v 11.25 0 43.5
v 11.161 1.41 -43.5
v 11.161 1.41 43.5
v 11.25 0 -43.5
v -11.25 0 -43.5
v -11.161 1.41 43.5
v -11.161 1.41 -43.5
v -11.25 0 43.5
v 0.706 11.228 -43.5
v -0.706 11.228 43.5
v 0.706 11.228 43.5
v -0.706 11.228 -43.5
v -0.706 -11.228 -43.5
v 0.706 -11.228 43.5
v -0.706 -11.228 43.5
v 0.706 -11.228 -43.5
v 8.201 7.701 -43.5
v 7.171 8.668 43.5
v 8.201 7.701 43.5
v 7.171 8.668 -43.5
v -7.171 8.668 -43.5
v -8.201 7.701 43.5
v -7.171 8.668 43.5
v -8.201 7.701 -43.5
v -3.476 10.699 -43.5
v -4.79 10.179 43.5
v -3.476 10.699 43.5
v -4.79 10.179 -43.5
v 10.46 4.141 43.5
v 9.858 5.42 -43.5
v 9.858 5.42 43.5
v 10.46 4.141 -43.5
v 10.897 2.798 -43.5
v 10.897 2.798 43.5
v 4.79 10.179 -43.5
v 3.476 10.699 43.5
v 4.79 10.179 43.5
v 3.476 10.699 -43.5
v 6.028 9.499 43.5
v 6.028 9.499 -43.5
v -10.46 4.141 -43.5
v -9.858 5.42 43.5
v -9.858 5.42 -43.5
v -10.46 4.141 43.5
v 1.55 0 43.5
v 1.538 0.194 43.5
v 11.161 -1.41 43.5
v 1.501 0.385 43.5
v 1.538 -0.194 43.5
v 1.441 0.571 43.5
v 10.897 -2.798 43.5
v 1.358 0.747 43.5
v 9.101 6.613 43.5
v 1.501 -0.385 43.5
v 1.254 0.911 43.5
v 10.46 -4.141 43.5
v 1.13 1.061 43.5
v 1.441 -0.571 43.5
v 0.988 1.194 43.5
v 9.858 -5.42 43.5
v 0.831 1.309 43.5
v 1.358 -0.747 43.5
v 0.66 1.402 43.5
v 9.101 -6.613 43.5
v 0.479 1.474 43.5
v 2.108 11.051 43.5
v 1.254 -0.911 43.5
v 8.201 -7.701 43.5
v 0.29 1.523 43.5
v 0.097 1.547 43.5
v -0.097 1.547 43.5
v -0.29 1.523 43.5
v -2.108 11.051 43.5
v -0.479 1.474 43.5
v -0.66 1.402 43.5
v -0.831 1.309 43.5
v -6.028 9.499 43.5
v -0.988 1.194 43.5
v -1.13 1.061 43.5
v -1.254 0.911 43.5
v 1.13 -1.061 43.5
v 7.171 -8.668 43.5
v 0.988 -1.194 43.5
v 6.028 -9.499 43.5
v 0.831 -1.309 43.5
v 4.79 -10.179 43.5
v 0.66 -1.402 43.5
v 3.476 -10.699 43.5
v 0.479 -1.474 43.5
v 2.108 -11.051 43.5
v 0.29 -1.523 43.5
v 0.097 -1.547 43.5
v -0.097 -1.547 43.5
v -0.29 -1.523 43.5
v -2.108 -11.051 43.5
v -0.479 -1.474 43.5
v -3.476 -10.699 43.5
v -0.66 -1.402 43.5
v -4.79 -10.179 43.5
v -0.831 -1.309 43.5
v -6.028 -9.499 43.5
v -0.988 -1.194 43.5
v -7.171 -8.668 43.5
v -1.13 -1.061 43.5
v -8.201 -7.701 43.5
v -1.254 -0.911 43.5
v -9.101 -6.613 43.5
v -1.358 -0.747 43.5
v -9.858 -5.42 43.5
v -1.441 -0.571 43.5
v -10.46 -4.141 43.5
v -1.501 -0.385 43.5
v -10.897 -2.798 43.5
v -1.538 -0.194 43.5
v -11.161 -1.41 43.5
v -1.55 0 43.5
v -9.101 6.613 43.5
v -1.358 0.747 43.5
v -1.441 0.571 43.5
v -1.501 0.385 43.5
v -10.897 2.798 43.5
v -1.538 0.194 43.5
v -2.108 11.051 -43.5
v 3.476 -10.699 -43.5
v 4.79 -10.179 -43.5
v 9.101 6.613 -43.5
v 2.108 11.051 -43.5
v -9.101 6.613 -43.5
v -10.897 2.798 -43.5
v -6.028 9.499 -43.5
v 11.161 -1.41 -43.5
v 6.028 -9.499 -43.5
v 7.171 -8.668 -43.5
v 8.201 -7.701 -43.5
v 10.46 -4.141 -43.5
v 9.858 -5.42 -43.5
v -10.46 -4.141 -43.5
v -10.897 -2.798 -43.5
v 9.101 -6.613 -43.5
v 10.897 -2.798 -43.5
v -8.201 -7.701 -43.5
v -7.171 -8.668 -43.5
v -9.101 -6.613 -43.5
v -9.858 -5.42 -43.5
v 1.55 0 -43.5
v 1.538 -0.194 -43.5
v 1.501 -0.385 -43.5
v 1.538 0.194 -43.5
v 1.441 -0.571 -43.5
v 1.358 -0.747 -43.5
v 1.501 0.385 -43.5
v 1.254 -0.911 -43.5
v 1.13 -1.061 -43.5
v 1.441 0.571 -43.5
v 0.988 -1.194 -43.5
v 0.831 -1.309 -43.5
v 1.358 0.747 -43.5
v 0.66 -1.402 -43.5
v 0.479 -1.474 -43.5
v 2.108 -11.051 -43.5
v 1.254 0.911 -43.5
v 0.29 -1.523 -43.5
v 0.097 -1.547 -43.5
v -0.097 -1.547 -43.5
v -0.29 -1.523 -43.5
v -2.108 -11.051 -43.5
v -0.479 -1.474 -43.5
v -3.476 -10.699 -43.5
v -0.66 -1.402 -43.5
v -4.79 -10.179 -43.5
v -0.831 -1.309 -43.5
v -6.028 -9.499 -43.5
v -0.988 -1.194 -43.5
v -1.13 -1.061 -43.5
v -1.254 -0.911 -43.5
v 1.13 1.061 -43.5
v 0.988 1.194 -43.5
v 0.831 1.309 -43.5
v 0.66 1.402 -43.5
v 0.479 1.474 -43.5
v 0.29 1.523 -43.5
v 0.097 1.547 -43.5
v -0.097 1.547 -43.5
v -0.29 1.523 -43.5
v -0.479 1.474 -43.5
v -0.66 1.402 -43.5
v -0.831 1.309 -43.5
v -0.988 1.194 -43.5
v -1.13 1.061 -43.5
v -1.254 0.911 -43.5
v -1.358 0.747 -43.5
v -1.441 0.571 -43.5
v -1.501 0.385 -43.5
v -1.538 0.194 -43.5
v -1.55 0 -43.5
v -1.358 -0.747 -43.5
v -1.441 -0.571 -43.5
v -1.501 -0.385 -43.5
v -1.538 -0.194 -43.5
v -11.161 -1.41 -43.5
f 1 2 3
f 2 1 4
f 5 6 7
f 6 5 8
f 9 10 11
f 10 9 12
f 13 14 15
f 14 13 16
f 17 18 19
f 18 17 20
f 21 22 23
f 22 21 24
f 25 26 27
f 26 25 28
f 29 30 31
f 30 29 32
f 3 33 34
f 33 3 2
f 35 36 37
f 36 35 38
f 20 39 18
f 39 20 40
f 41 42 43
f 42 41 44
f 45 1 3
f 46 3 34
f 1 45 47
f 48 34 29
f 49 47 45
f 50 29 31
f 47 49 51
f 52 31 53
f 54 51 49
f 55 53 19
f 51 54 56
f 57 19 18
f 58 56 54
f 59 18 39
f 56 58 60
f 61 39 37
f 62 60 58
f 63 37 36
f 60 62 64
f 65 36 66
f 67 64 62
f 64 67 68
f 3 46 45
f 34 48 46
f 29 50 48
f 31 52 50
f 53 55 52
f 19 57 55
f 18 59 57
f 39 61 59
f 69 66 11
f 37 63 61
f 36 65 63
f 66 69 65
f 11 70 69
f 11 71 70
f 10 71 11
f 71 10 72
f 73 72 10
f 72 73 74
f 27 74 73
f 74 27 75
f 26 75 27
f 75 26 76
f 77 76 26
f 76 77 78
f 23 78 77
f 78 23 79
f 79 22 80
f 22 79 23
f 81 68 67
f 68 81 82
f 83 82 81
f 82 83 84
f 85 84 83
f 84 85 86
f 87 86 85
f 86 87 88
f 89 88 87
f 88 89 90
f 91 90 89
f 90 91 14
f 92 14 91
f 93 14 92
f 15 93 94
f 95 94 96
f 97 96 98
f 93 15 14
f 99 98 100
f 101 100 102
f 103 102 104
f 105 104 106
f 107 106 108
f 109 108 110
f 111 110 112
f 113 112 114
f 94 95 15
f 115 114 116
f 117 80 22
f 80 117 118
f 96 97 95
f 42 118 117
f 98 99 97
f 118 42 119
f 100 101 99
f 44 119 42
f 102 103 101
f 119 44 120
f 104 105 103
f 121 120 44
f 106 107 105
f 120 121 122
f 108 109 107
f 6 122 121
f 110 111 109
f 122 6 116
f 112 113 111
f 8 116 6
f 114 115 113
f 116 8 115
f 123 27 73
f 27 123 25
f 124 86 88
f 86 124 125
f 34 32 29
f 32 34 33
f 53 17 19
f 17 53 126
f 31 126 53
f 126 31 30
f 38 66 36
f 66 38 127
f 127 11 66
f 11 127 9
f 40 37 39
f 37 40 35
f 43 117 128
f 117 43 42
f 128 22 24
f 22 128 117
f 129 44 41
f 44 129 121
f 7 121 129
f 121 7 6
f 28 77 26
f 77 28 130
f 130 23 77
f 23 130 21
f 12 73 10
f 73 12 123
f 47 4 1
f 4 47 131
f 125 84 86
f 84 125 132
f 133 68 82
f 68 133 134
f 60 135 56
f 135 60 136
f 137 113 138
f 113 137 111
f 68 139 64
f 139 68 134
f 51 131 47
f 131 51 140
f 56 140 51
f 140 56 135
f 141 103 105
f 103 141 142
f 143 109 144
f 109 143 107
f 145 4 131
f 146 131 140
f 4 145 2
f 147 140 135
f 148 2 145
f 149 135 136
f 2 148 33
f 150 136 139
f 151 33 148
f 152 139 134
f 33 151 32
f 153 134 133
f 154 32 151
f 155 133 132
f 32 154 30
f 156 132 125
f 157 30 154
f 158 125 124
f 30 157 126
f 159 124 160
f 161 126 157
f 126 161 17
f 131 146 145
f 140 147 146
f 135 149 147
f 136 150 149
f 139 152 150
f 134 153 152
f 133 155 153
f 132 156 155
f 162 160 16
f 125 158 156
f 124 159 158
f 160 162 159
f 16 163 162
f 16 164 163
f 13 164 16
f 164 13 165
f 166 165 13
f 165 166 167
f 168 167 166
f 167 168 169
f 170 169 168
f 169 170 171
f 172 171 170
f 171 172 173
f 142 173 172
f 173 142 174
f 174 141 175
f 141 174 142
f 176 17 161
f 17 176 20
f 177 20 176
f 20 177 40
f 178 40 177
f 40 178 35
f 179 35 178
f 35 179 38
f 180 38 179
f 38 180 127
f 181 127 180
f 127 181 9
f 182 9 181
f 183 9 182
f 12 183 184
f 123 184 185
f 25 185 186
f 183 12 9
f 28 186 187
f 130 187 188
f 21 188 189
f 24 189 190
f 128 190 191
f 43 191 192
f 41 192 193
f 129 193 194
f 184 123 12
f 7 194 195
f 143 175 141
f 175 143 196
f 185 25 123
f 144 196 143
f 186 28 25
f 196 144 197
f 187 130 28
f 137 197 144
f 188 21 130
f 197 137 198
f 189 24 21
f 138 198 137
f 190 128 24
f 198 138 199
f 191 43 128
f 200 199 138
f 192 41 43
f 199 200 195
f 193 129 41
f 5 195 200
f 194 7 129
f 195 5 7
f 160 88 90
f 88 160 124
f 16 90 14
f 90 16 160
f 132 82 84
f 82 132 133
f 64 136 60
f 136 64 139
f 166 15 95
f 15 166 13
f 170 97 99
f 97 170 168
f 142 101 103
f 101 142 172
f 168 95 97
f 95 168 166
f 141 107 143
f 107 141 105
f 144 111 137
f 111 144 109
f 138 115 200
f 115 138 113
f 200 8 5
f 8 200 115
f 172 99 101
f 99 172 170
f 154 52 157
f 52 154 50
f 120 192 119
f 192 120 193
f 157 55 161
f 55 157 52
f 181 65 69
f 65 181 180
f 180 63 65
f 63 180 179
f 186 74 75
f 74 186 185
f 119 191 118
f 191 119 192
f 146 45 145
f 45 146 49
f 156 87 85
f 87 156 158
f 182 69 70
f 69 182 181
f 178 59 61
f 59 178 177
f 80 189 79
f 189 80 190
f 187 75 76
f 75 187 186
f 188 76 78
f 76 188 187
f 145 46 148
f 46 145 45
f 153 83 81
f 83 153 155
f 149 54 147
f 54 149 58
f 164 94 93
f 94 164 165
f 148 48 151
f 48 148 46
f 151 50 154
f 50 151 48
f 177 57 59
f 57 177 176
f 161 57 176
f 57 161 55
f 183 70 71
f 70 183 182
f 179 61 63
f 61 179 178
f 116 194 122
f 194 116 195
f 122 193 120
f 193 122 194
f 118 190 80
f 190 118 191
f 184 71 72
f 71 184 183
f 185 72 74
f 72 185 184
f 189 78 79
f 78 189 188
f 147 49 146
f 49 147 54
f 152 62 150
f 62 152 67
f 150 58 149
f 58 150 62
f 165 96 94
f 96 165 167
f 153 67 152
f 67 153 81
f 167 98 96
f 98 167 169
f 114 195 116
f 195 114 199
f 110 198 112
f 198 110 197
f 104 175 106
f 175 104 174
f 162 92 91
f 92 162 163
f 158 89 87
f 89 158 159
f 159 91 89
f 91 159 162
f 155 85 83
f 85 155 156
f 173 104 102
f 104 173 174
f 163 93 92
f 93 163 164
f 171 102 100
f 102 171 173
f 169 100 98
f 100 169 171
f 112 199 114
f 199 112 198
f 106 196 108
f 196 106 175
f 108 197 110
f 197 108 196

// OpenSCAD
$fn = 50;


difference() {
	union() {
		translate(v = [0, 0, -43.5000000000]) {
			cylinder(h = 87, r = 11.2500000000);
		}
	}
	union() {
		translate(v = [0, 0, -100.0000000000]) {
			cylinder(h = 200, r = 1.5500000000);
		}
	}
}
